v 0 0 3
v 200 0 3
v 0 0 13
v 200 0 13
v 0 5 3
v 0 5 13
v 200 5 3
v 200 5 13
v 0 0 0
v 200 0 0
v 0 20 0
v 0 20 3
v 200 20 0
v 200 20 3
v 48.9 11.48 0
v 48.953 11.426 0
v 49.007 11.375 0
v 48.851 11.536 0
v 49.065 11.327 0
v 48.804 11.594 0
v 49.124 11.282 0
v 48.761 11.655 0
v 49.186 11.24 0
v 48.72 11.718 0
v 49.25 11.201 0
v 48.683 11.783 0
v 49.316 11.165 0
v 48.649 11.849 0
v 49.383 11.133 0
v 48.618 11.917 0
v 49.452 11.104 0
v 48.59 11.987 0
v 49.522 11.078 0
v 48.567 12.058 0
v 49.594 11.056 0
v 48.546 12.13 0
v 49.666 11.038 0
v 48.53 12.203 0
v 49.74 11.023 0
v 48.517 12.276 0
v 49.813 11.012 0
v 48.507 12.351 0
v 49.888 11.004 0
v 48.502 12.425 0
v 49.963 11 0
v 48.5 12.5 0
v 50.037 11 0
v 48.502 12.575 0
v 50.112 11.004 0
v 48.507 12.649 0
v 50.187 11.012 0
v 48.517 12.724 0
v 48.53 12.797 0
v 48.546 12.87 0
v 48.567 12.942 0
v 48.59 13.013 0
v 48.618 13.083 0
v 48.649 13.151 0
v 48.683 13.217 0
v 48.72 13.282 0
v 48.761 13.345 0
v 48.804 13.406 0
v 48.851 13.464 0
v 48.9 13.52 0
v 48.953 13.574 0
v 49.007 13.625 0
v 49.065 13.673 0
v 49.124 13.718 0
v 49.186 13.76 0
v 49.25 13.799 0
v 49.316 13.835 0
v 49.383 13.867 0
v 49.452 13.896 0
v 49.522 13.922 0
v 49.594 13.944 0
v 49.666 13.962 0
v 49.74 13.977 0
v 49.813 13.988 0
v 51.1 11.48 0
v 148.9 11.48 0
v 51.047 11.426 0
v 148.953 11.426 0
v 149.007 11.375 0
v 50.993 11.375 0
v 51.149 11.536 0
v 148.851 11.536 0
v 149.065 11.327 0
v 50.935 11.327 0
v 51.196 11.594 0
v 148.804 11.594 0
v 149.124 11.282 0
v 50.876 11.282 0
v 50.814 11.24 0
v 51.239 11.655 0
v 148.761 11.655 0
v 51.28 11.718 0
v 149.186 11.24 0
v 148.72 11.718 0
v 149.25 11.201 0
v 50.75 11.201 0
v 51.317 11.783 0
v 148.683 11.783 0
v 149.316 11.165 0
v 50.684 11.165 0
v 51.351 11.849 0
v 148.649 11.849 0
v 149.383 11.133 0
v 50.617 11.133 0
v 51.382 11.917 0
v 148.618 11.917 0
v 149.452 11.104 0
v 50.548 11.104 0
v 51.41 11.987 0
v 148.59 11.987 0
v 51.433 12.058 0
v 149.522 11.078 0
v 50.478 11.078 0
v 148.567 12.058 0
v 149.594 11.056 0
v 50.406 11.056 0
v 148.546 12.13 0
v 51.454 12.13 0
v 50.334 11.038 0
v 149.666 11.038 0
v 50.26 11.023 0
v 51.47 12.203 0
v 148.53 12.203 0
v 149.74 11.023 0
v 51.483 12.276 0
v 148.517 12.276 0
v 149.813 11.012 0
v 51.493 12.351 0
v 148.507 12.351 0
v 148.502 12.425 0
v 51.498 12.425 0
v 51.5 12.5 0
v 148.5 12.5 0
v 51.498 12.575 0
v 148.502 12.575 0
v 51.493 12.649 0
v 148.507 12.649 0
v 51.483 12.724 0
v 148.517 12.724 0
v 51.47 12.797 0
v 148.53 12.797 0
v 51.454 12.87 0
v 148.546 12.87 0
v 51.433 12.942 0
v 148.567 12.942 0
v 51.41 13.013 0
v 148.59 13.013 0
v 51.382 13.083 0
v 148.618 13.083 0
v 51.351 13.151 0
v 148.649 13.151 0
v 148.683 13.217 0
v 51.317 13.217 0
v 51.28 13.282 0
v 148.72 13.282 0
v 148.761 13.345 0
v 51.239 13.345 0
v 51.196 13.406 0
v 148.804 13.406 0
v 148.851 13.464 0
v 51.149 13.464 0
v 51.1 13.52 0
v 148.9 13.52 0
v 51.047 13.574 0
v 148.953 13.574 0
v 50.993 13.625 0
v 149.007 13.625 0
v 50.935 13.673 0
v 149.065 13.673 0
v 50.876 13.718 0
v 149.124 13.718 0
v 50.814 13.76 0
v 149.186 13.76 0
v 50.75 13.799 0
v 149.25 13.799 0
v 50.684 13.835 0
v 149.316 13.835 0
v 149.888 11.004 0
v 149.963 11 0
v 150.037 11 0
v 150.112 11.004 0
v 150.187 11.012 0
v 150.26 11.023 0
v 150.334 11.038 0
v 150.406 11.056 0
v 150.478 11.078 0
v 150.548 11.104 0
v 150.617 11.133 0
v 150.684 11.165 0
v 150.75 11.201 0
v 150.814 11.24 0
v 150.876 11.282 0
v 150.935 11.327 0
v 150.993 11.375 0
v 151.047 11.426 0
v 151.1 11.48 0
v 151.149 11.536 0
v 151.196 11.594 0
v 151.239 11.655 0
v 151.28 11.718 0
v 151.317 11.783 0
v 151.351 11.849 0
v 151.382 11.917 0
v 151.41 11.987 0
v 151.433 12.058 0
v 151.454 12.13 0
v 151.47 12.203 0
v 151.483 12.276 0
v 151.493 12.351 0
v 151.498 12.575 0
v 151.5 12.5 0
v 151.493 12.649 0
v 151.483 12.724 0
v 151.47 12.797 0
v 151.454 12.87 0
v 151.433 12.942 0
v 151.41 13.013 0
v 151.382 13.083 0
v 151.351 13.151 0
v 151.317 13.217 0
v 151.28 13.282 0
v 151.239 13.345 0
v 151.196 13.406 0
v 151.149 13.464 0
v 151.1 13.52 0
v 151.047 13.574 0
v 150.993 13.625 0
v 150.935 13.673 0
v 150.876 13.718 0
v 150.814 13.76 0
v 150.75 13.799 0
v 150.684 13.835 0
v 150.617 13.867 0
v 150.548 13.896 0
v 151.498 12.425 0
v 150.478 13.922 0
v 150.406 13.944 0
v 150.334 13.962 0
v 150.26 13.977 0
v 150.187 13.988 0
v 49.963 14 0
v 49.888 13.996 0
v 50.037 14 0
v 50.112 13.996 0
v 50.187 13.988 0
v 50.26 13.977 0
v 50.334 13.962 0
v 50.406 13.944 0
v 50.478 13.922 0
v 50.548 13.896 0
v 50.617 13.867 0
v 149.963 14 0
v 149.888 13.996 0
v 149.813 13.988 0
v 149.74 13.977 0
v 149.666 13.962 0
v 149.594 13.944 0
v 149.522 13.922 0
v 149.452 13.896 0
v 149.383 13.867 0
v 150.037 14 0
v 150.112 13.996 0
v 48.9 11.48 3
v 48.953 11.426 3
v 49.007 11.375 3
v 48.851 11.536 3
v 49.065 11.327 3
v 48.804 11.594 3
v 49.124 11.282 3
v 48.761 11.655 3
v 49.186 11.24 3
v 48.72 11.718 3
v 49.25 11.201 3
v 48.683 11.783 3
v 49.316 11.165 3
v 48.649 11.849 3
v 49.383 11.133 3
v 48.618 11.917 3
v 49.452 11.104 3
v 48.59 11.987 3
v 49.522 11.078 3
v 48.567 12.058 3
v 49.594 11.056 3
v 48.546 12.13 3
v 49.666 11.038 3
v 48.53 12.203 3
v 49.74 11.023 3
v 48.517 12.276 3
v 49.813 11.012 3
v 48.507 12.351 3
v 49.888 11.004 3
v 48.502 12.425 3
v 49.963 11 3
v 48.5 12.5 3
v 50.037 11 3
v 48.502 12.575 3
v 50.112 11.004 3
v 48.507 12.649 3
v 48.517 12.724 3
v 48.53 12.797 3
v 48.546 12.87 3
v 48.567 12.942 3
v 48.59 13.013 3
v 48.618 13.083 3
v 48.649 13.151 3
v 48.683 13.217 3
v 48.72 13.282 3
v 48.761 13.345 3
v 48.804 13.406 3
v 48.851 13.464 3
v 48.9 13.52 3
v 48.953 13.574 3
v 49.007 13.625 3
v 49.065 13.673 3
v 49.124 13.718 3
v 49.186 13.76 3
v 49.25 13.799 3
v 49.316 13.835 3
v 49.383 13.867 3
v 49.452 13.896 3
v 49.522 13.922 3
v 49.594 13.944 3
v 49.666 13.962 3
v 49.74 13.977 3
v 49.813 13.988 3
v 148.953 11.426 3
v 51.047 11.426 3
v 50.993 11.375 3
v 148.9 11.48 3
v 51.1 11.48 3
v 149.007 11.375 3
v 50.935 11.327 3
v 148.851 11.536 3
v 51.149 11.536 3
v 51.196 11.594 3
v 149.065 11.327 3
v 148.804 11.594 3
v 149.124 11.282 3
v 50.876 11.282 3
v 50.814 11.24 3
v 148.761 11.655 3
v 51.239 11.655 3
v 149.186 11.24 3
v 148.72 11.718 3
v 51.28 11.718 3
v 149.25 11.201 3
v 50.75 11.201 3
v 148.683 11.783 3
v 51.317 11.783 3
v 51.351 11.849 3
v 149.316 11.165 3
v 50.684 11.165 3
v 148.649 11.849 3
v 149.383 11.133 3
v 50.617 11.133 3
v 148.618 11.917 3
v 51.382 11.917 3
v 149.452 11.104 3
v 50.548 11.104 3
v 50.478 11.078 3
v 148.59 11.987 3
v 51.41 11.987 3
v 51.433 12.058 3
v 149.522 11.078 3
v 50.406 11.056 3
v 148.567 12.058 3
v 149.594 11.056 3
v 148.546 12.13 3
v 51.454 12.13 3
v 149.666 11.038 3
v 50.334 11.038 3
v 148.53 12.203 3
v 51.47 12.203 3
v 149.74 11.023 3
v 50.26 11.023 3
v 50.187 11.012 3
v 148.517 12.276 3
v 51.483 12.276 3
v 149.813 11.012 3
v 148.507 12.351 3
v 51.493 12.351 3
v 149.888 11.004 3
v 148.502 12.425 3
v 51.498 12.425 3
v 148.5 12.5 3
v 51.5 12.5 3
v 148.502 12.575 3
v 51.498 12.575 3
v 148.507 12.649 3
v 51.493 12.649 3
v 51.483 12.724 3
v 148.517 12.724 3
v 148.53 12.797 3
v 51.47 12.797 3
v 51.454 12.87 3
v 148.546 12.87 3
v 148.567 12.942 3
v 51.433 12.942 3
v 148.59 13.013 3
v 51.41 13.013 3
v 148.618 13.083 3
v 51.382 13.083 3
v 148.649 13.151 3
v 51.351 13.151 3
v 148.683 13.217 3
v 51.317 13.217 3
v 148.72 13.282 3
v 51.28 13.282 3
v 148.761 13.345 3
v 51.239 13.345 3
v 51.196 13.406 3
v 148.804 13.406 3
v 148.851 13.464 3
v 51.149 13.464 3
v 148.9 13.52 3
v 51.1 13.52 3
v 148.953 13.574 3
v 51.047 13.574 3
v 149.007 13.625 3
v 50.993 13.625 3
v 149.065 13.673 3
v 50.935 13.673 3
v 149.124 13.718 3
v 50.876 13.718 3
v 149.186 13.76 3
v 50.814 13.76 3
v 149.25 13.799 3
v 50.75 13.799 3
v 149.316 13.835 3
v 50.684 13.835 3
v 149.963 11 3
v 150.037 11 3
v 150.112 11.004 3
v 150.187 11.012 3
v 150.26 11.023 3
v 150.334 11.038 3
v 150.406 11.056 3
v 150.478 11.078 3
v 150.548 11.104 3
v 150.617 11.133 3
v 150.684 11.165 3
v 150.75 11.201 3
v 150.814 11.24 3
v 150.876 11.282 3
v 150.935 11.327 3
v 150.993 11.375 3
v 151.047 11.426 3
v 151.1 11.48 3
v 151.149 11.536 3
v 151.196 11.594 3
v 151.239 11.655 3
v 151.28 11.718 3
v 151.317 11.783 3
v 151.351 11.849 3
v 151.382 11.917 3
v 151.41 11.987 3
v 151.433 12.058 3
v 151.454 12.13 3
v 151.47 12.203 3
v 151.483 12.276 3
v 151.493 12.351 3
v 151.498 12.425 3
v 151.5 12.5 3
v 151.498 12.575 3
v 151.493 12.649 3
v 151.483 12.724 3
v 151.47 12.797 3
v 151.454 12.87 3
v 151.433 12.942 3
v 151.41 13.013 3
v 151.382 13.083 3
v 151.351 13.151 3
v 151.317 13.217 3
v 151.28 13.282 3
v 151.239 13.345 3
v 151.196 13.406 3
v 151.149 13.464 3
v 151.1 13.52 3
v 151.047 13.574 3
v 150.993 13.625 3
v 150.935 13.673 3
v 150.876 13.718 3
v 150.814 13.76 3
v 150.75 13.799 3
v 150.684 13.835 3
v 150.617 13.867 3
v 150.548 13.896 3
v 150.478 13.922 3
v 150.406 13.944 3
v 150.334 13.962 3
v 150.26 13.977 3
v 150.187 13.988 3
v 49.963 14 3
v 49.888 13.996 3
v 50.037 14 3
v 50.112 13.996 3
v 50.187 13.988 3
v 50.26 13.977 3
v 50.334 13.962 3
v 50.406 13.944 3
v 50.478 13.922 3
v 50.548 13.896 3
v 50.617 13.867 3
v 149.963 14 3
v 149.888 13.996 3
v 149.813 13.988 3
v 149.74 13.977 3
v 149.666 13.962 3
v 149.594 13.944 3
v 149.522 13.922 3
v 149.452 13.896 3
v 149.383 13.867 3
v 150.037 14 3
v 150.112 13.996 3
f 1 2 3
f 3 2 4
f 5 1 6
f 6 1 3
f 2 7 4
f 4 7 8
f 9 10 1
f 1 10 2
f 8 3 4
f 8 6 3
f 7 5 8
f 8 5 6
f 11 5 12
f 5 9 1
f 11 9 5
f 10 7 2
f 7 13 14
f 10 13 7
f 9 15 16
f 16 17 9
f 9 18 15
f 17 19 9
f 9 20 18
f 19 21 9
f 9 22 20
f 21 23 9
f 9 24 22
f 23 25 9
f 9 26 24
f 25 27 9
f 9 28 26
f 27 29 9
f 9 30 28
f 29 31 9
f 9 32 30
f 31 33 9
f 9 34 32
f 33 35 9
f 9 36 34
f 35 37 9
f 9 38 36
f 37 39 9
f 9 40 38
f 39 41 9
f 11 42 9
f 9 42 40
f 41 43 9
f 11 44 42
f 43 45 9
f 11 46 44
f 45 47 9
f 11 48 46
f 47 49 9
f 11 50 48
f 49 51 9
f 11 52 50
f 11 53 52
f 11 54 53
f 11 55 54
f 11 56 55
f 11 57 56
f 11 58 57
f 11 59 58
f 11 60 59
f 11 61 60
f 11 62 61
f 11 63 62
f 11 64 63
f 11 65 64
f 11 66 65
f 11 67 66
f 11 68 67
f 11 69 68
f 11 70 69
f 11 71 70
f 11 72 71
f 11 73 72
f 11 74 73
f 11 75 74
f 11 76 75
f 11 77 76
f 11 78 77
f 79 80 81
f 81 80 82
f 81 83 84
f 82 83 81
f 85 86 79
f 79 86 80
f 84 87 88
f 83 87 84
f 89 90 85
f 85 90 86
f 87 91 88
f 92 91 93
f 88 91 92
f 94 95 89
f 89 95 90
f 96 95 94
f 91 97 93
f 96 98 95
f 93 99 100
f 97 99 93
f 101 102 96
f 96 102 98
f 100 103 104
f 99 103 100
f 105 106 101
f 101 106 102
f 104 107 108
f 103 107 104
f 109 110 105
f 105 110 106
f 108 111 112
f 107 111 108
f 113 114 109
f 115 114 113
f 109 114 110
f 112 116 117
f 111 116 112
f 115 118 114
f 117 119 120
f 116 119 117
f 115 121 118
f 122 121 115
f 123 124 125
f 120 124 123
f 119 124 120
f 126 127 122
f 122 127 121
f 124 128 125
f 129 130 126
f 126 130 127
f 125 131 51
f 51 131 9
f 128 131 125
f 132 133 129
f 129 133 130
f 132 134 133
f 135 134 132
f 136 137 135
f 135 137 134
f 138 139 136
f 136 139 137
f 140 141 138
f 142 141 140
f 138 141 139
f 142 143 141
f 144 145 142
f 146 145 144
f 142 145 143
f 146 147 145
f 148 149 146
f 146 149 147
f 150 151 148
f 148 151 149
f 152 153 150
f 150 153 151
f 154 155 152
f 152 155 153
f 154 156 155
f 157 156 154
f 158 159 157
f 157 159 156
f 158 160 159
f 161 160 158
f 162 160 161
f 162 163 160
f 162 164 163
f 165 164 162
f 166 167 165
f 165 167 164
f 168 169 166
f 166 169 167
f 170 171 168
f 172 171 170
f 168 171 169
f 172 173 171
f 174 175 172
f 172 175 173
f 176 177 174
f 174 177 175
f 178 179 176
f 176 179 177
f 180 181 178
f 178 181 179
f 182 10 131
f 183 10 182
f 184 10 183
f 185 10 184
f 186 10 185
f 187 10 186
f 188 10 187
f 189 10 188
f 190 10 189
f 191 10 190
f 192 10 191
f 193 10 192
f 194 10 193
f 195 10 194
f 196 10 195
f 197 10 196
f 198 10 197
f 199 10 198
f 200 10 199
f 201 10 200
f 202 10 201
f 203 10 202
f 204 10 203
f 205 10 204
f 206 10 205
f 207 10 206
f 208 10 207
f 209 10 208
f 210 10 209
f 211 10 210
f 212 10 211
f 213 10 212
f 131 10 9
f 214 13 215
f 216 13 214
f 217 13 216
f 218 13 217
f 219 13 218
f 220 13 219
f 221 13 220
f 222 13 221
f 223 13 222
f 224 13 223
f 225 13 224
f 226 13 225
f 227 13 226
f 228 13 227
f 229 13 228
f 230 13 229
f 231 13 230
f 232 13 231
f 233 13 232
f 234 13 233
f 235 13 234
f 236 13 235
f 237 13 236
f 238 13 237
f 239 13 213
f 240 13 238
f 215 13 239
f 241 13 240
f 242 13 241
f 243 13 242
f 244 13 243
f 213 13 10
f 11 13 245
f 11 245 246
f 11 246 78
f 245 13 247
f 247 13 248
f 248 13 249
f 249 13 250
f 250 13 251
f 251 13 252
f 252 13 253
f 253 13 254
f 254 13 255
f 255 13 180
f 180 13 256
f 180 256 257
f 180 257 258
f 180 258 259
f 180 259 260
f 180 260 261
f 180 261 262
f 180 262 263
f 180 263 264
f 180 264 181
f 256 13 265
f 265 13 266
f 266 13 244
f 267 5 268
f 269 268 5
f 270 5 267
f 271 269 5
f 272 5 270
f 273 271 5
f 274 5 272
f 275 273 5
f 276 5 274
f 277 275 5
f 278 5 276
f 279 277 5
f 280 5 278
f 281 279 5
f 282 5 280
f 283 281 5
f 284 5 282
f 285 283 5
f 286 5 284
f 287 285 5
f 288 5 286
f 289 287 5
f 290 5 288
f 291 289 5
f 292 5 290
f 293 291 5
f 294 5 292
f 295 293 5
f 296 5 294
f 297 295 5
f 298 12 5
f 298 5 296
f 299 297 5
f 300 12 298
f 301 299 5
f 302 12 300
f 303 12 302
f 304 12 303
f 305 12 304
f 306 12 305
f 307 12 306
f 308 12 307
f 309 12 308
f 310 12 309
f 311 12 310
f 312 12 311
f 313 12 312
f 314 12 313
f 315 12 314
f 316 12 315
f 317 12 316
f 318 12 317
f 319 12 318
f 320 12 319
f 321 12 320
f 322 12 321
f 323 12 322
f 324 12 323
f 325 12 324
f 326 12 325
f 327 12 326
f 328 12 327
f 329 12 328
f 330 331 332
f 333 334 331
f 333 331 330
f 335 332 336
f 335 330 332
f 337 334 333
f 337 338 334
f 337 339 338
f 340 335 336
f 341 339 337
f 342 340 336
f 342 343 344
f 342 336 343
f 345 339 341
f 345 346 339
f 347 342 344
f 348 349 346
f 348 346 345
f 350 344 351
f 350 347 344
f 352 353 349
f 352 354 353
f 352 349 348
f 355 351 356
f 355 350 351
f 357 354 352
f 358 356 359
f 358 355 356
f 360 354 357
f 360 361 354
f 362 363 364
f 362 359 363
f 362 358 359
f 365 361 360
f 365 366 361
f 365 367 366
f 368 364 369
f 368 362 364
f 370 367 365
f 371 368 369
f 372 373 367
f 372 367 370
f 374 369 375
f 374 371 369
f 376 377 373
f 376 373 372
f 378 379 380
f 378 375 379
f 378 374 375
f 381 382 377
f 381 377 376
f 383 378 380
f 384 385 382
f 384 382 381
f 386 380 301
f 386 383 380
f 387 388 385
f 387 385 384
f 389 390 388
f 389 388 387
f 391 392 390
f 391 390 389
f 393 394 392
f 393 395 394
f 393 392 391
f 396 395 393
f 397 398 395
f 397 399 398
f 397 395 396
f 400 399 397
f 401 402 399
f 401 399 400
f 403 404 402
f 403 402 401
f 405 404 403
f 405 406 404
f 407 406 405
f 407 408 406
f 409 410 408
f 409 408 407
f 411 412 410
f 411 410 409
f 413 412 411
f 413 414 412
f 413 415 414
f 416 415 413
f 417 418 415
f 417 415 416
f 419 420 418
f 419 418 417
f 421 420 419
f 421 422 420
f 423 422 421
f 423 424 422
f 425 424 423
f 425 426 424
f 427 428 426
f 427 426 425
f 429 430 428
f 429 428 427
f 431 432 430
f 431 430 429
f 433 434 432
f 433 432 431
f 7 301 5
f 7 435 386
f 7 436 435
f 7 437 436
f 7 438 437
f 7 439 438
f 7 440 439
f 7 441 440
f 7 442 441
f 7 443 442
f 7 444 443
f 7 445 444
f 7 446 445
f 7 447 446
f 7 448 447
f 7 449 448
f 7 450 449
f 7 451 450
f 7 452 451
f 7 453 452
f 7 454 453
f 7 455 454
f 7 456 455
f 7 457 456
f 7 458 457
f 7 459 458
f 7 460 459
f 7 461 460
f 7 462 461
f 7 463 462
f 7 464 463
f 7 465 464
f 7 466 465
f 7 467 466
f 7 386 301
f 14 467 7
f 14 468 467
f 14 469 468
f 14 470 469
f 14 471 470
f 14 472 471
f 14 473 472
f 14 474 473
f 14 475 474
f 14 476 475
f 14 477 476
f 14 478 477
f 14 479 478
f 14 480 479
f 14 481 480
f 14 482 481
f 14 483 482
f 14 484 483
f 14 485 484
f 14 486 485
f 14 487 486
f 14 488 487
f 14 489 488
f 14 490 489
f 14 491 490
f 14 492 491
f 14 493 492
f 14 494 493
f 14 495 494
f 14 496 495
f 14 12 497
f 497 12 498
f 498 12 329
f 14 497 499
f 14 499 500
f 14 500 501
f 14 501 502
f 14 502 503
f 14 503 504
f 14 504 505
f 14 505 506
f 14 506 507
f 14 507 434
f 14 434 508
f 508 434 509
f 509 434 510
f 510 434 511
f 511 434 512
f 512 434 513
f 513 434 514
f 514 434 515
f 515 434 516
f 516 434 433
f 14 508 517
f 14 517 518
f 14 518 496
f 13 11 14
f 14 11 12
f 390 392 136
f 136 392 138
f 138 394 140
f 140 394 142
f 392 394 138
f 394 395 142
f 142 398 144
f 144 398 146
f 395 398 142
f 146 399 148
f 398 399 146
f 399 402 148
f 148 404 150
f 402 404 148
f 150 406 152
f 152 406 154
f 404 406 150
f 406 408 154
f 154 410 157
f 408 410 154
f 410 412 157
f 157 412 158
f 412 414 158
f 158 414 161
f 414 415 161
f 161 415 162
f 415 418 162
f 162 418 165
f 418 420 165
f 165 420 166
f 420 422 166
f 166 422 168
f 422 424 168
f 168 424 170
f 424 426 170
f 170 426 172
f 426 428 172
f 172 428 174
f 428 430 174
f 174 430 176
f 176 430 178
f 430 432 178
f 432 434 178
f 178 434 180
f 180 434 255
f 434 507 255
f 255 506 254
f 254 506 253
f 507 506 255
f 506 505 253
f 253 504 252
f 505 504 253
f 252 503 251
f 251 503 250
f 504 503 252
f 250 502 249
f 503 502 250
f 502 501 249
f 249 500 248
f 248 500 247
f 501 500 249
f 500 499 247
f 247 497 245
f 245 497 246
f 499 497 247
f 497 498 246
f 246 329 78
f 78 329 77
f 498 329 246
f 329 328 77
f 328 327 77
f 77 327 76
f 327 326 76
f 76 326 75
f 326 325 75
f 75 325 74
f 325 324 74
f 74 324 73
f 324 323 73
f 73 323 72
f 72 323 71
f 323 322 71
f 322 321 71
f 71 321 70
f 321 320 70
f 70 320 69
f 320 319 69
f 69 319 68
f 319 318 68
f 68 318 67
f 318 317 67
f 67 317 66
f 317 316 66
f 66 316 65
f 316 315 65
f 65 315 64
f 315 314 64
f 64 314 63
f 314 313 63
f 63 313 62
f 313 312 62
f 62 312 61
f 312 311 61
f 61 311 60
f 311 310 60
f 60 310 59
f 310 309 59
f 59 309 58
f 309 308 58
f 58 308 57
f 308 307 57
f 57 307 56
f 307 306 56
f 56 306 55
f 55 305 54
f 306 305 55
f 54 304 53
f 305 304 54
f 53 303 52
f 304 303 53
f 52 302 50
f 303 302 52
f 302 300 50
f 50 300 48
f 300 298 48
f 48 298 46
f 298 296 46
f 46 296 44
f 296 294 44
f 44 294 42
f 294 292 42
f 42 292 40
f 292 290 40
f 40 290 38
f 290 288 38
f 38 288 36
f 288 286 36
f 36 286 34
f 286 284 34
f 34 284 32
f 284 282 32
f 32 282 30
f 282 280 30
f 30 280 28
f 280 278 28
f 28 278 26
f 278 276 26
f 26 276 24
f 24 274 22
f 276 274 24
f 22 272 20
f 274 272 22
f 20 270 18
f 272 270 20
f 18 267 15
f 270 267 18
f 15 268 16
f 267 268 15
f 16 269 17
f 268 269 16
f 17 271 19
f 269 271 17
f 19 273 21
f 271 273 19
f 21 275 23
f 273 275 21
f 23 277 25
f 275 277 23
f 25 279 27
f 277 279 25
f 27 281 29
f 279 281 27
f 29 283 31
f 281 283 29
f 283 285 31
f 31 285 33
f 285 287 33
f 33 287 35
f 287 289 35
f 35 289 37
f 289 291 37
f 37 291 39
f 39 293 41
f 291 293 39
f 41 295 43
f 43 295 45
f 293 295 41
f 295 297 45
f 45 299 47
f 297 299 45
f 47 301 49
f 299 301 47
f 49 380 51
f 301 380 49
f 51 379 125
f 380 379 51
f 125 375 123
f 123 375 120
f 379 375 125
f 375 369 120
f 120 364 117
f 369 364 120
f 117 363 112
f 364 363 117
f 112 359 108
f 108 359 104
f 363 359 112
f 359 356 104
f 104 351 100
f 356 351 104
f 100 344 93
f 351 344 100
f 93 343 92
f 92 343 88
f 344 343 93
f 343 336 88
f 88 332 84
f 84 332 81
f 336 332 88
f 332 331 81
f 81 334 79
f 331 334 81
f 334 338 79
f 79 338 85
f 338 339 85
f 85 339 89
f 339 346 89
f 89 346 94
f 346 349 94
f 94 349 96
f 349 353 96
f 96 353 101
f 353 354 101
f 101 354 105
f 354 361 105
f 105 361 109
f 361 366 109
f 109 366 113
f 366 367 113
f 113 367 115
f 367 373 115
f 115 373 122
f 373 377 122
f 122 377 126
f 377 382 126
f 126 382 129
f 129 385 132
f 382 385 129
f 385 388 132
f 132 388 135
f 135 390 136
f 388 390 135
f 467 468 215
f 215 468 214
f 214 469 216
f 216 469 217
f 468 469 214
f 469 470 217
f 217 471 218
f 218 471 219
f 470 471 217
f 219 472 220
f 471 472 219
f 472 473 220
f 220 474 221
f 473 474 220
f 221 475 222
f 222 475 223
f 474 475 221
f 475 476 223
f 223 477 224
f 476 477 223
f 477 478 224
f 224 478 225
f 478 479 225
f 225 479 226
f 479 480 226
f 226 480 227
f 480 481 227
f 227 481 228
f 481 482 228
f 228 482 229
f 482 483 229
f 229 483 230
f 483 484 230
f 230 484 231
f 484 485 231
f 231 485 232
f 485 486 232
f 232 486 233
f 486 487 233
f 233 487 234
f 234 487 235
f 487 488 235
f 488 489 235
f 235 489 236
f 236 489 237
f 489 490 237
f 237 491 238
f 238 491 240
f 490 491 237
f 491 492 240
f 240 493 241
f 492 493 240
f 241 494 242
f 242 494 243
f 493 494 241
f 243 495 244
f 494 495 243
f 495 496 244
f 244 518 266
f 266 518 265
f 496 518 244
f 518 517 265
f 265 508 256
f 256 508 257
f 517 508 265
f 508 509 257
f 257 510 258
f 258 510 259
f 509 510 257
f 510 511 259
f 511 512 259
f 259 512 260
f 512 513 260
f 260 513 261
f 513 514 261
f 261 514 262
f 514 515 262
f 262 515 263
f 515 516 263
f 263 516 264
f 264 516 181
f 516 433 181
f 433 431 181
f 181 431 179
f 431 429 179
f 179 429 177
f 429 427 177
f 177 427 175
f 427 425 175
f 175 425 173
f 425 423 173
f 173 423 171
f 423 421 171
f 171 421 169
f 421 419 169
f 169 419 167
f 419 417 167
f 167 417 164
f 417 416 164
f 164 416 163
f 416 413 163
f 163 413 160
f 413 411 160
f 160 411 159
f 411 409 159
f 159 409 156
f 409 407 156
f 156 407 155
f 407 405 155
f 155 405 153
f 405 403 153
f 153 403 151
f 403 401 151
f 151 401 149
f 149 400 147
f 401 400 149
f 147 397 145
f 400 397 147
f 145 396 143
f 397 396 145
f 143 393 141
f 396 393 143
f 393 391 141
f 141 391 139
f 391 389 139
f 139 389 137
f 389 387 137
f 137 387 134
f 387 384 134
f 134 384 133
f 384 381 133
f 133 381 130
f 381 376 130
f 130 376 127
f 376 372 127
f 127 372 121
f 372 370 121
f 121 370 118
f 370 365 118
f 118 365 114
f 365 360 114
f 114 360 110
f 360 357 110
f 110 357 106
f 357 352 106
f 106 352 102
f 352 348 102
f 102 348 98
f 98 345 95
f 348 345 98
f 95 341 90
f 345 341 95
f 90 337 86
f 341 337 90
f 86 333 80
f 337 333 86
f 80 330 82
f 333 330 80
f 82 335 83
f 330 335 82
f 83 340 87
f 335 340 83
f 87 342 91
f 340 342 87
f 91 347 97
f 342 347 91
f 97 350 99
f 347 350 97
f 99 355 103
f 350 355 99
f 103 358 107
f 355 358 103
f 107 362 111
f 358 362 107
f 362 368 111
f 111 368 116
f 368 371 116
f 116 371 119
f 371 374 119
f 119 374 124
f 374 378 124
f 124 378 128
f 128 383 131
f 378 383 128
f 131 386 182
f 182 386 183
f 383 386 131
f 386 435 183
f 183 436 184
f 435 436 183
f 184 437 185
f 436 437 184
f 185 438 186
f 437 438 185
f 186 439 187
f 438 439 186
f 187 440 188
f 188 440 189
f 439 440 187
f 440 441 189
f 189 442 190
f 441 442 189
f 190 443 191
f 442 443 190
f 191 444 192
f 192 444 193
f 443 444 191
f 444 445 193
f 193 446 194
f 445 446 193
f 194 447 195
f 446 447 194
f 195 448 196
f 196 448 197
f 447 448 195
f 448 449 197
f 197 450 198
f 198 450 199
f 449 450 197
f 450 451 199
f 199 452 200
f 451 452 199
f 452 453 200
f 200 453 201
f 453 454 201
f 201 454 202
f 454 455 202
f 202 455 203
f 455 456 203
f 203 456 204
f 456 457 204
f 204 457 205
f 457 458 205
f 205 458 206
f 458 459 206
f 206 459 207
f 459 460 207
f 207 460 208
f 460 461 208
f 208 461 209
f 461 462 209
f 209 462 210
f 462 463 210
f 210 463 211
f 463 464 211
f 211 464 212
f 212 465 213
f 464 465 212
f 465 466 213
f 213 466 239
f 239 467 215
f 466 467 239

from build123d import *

# Parameters (mm, degrees)
SKETCH002_R      = 1.5
EXTRUDE002_DEPTH = 10
SKETCH_W         = 200
SKETCH_H         = 20
EXTRUDE_DEPTH    = 3
FACE001_W        = 5
FACE001_H        = 200
EXTRUDE001_DEPTH = 10


with BuildPart() as extrude002:
    # Sketch002 (on Face6 of Extrude) → Extrude002 (new body)
    with BuildSketch(Plane.XY.offset(3)):
        with Locations((50, 12.5)):
            Circle(SKETCH002_R)
        with Locations((150, 12.5)):
            Circle(SKETCH002_R)
    extrude(amount=-EXTRUDE002_DEPTH)


with BuildPart() as cut:
    # Sketch → Extrude (new body)
    with BuildSketch(Plane.XY):
        with Locations((100, 10)):
            Rectangle(SKETCH_W, SKETCH_H)
    extrude(amount=EXTRUDE_DEPTH)

    # Cut: cut Extrude002
    add(extrude002.part, mode=Mode.SUBTRACT)


with BuildPart() as fusion:
    # Face001 → Extrude001 (new body)
    with BuildSketch(Plane(origin=(100, 2.5, 3), x_dir=(0, 1, 0), z_dir=(0, 0, 1))):
        Rectangle(FACE001_W, FACE001_H)
    extrude(amount=EXTRUDE001_DEPTH)

    # Fusion: union Cut
    add(cut.part)


solid = fusion.part
